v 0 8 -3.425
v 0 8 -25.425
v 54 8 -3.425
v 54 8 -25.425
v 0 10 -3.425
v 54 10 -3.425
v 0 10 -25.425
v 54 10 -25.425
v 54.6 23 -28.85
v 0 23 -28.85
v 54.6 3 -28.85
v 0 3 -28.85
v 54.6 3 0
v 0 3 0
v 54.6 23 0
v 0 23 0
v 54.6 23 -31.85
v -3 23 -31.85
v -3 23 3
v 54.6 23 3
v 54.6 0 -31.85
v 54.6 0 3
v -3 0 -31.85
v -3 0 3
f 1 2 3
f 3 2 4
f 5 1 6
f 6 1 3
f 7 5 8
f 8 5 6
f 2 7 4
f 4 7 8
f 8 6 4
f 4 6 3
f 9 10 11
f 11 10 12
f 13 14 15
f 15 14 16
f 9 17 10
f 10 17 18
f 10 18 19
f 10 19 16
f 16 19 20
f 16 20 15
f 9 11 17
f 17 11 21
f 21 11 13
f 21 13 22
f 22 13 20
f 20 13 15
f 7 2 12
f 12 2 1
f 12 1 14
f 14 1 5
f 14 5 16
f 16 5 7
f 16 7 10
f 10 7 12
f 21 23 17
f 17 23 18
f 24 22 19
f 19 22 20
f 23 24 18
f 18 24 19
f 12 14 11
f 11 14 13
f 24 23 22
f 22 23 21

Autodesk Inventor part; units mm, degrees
ref_plane "YZ Plane" through (0, 0, 0) normal (1, 0, 0) x (0, 1, 0)
ref_plane "XZ Plane" through (0, 0, 0) normal (0, 1, 0) x (-1, 0, 0)
ref_plane "XY Plane" through (0, 0, 0) normal (0, 0, 1) x (1, 0, 0)
sketch "Sketch1" plane through (0, 0, 0) normal (0, 1, 0) x (-1, 0, 0)
  line L0 (0, 0) -> (0, -28.85)
  line L1 (0, -28.85) -> (-51.6, -28.85)
  line L2 (0, 0) -> (-51.6, 0)
  line L3 (-51.6, 0) -> (-51.6, -28.85)
  line L4 (-54.6, -31.85) -> (3, -31.85)
  line L5 (3, -31.85) -> (3, 3)
  line L6 (3, 3) -> (-54.6, 3)
  line L7 (-54.6, 3) -> (-54.6, -31.85)
  dimension "d0" = 28.85
  dimension "d1" = 51.6
  dimension "d2" = 3
extrude "Extrusion1" add sketch "Sketch1" along normal blind 3 contours L0 L1 L3 L2
extrude "Extrusion2" add sketch "Sketch1" along normal blind 23
sketch "Sketch2" plane through (54.6, 0, 3) normal (1, 0, 0) x (0, 0, -1)
  line L0 (3, 3) -> (3, 23) projected
  line L1 (3, 23) -> (3, 3)
  line L2 (31.85, 3) -> (31.85, 23) projected
  line L3 (3, 3) -> (31.85, 3)
  line L4 (31.85, 3) -> (31.85, 23)
  line L5 (31.85, 23) -> (3, 23)
  point P0 (3, 0)
extrude "Extrusion3" cut sketch "Sketch2" against normal blind 23
sketch "Sketch3" plane through (0, 3, -28.85) normal (1, 0, 0) x (0, 0, -1)
  line L0 (0, 0) -> (-28.85, 0) projected
  line L1 (-14.425, 0) -> (-14.425, 5)
  line L2 (-14.425, 5) -> (-3.425, 5)
  line L3 (-14.425, 5) -> (-25.425, 5)
  line L4 (-25.425, 5) -> (-25.425, 7)
  line L5 (-25.425, 7) -> (-3.425, 7)
  line L6 (-3.425, 7) -> (-3.425, 5)
  point P0 (-28.85, -3)
  dimension "d9" = 5
  dimension "d10" = 11
  dimension "d11" = 11
  dimension "d12" = 2
extrude "Extrusion4" add sketch "Sketch3" along normal blind 54
properties part number "DudukanESP32"
